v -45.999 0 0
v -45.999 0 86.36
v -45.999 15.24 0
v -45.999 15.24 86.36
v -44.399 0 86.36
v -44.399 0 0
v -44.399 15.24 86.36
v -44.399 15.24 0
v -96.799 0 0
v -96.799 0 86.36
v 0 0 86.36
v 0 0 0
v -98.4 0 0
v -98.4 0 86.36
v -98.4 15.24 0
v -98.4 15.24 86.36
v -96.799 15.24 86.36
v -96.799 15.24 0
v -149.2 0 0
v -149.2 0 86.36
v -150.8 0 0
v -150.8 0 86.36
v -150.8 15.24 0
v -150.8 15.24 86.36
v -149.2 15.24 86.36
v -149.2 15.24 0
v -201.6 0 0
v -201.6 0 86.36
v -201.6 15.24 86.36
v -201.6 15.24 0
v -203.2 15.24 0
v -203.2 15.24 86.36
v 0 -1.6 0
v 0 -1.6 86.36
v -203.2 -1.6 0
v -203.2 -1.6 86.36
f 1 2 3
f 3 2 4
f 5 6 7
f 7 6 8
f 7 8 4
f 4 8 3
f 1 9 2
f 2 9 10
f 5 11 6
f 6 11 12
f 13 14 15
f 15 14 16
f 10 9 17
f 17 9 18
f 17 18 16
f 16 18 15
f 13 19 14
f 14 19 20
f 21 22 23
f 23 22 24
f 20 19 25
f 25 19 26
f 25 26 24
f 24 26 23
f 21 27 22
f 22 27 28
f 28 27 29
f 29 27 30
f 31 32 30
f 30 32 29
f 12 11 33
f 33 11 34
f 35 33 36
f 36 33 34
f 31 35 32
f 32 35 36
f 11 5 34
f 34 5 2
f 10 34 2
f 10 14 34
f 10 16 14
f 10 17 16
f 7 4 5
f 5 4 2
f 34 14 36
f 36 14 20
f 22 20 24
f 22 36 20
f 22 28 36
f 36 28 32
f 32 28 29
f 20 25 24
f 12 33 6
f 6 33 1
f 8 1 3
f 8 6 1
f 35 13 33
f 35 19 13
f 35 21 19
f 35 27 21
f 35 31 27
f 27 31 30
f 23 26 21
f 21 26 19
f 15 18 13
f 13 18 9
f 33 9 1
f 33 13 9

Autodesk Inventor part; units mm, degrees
ref_plane "YZ Plane" through (0, 0, 0) normal (1, 0, 0) x (0, 1, 0)
ref_plane "XZ Plane" through (0, 0, 0) normal (0, 1, 0) x (-1, 0, 0)
ref_plane "XY Plane" through (0, 0, 0) normal (0, 0, 1) x (1, 0, 0)
sketch "Sketch1" plane through (0, 0, 0) normal (0, 0, 1) x (1, 0, 0)
  line L0 (0, 0) -> (-203.2, 0)
  line L1 (-203.2, 0) -> (-203.2, -1.6002)
  line L2 (-203.2, -1.6002) -> (0, -1.6002)
  line L3 (0, -1.6002) -> (0, 0)
  dimension "d0" = 203.2
  dimension "d1" = 1.6002
extrude "Extrusion1" add sketch "Sketch1" along normal blind 86.36
sketch "Sketch2" plane through (-203.2, 0, 0) normal (0, 1, 0) x (1, 0, 0)
  line L0 (203.2, 0) -> (0, 0) projected
  line L1 (203.2, -86.36) -> (0, -86.36) projected
  line L2 (0, 0) -> (1.6002, 0)
  line L3 (1.6002, 0) -> (1.6002, -86.36)
  line L4 (1.6002, -86.36) -> (0, -86.36)
  line L5 (0, -86.36) -> (0, 0)
  dimension "d4" = 1.6002
extrude "Extrusion2" add sketch "Sketch2" along normal blind 15.24
sketch "Sketch3" plane through (0, 0, 86.36) normal (0, 1, 0) x (1, 0, 0)
  line L0 (-203.2, 0) -> (0, 0) projected
  line L1 (-203.2, 86.36) -> (0, 86.36) projected
  line L2 (-150.7998, 0) -> (-149.1996, 0)
  line L3 (-149.1996, 0) -> (-149.1996, 86.36)
  line L4 (-149.1996, 86.36) -> (-150.7998, 86.36)
  line L5 (-150.7998, 86.36) -> (-150.7998, 0)
  dimension "d7" = 1.6002
extrude "Extrusion3" add sketch "Sketch3" along normal blind 15.24
sketch "Sketch4" plane through (0, 0, 86.36) normal (0, 1, 0) x (1, 0, 0)
  line L0 (-203.2, 0) -> (0, 0) projected
  line L1 (-203.2, 86.36) -> (0, 86.36) projected
  line L2 (-98.3996, 0) -> (-96.7994, 0)
  line L3 (-96.7994, 0) -> (-96.7994, 86.36)
  line L4 (-96.7994, 86.36) -> (-98.3996, 86.36)
  line L5 (-98.3996, 86.36) -> (-98.3996, 0)
  dimension "d10" = 1.6002
extrude "Extrusion4" add sketch "Sketch4" along normal blind 15.24
sketch "Sketch5" plane through (0, 0, 86.36) normal (0, 1, 0) x (1, 0, 0)
  line L0 (0, 0) -> (-96.7994, 0) projected
  line L1 (0, 86.36) -> (-96.7994, 86.36) projected
  line L2 (-45.9994, 0) -> (-44.3992, 0)
  line L3 (-44.3992, 0) -> (-44.3992, 86.36)
  line L4 (-44.3992, 86.36) -> (-45.9994, 86.36)
  line L5 (-45.9994, 86.36) -> (-45.9994, 0)
  dimension "d13" = 1.6002
extrude "Extrusion5" add sketch "Sketch5" along normal blind 15.24
properties part number "ModulePlate2.0"
